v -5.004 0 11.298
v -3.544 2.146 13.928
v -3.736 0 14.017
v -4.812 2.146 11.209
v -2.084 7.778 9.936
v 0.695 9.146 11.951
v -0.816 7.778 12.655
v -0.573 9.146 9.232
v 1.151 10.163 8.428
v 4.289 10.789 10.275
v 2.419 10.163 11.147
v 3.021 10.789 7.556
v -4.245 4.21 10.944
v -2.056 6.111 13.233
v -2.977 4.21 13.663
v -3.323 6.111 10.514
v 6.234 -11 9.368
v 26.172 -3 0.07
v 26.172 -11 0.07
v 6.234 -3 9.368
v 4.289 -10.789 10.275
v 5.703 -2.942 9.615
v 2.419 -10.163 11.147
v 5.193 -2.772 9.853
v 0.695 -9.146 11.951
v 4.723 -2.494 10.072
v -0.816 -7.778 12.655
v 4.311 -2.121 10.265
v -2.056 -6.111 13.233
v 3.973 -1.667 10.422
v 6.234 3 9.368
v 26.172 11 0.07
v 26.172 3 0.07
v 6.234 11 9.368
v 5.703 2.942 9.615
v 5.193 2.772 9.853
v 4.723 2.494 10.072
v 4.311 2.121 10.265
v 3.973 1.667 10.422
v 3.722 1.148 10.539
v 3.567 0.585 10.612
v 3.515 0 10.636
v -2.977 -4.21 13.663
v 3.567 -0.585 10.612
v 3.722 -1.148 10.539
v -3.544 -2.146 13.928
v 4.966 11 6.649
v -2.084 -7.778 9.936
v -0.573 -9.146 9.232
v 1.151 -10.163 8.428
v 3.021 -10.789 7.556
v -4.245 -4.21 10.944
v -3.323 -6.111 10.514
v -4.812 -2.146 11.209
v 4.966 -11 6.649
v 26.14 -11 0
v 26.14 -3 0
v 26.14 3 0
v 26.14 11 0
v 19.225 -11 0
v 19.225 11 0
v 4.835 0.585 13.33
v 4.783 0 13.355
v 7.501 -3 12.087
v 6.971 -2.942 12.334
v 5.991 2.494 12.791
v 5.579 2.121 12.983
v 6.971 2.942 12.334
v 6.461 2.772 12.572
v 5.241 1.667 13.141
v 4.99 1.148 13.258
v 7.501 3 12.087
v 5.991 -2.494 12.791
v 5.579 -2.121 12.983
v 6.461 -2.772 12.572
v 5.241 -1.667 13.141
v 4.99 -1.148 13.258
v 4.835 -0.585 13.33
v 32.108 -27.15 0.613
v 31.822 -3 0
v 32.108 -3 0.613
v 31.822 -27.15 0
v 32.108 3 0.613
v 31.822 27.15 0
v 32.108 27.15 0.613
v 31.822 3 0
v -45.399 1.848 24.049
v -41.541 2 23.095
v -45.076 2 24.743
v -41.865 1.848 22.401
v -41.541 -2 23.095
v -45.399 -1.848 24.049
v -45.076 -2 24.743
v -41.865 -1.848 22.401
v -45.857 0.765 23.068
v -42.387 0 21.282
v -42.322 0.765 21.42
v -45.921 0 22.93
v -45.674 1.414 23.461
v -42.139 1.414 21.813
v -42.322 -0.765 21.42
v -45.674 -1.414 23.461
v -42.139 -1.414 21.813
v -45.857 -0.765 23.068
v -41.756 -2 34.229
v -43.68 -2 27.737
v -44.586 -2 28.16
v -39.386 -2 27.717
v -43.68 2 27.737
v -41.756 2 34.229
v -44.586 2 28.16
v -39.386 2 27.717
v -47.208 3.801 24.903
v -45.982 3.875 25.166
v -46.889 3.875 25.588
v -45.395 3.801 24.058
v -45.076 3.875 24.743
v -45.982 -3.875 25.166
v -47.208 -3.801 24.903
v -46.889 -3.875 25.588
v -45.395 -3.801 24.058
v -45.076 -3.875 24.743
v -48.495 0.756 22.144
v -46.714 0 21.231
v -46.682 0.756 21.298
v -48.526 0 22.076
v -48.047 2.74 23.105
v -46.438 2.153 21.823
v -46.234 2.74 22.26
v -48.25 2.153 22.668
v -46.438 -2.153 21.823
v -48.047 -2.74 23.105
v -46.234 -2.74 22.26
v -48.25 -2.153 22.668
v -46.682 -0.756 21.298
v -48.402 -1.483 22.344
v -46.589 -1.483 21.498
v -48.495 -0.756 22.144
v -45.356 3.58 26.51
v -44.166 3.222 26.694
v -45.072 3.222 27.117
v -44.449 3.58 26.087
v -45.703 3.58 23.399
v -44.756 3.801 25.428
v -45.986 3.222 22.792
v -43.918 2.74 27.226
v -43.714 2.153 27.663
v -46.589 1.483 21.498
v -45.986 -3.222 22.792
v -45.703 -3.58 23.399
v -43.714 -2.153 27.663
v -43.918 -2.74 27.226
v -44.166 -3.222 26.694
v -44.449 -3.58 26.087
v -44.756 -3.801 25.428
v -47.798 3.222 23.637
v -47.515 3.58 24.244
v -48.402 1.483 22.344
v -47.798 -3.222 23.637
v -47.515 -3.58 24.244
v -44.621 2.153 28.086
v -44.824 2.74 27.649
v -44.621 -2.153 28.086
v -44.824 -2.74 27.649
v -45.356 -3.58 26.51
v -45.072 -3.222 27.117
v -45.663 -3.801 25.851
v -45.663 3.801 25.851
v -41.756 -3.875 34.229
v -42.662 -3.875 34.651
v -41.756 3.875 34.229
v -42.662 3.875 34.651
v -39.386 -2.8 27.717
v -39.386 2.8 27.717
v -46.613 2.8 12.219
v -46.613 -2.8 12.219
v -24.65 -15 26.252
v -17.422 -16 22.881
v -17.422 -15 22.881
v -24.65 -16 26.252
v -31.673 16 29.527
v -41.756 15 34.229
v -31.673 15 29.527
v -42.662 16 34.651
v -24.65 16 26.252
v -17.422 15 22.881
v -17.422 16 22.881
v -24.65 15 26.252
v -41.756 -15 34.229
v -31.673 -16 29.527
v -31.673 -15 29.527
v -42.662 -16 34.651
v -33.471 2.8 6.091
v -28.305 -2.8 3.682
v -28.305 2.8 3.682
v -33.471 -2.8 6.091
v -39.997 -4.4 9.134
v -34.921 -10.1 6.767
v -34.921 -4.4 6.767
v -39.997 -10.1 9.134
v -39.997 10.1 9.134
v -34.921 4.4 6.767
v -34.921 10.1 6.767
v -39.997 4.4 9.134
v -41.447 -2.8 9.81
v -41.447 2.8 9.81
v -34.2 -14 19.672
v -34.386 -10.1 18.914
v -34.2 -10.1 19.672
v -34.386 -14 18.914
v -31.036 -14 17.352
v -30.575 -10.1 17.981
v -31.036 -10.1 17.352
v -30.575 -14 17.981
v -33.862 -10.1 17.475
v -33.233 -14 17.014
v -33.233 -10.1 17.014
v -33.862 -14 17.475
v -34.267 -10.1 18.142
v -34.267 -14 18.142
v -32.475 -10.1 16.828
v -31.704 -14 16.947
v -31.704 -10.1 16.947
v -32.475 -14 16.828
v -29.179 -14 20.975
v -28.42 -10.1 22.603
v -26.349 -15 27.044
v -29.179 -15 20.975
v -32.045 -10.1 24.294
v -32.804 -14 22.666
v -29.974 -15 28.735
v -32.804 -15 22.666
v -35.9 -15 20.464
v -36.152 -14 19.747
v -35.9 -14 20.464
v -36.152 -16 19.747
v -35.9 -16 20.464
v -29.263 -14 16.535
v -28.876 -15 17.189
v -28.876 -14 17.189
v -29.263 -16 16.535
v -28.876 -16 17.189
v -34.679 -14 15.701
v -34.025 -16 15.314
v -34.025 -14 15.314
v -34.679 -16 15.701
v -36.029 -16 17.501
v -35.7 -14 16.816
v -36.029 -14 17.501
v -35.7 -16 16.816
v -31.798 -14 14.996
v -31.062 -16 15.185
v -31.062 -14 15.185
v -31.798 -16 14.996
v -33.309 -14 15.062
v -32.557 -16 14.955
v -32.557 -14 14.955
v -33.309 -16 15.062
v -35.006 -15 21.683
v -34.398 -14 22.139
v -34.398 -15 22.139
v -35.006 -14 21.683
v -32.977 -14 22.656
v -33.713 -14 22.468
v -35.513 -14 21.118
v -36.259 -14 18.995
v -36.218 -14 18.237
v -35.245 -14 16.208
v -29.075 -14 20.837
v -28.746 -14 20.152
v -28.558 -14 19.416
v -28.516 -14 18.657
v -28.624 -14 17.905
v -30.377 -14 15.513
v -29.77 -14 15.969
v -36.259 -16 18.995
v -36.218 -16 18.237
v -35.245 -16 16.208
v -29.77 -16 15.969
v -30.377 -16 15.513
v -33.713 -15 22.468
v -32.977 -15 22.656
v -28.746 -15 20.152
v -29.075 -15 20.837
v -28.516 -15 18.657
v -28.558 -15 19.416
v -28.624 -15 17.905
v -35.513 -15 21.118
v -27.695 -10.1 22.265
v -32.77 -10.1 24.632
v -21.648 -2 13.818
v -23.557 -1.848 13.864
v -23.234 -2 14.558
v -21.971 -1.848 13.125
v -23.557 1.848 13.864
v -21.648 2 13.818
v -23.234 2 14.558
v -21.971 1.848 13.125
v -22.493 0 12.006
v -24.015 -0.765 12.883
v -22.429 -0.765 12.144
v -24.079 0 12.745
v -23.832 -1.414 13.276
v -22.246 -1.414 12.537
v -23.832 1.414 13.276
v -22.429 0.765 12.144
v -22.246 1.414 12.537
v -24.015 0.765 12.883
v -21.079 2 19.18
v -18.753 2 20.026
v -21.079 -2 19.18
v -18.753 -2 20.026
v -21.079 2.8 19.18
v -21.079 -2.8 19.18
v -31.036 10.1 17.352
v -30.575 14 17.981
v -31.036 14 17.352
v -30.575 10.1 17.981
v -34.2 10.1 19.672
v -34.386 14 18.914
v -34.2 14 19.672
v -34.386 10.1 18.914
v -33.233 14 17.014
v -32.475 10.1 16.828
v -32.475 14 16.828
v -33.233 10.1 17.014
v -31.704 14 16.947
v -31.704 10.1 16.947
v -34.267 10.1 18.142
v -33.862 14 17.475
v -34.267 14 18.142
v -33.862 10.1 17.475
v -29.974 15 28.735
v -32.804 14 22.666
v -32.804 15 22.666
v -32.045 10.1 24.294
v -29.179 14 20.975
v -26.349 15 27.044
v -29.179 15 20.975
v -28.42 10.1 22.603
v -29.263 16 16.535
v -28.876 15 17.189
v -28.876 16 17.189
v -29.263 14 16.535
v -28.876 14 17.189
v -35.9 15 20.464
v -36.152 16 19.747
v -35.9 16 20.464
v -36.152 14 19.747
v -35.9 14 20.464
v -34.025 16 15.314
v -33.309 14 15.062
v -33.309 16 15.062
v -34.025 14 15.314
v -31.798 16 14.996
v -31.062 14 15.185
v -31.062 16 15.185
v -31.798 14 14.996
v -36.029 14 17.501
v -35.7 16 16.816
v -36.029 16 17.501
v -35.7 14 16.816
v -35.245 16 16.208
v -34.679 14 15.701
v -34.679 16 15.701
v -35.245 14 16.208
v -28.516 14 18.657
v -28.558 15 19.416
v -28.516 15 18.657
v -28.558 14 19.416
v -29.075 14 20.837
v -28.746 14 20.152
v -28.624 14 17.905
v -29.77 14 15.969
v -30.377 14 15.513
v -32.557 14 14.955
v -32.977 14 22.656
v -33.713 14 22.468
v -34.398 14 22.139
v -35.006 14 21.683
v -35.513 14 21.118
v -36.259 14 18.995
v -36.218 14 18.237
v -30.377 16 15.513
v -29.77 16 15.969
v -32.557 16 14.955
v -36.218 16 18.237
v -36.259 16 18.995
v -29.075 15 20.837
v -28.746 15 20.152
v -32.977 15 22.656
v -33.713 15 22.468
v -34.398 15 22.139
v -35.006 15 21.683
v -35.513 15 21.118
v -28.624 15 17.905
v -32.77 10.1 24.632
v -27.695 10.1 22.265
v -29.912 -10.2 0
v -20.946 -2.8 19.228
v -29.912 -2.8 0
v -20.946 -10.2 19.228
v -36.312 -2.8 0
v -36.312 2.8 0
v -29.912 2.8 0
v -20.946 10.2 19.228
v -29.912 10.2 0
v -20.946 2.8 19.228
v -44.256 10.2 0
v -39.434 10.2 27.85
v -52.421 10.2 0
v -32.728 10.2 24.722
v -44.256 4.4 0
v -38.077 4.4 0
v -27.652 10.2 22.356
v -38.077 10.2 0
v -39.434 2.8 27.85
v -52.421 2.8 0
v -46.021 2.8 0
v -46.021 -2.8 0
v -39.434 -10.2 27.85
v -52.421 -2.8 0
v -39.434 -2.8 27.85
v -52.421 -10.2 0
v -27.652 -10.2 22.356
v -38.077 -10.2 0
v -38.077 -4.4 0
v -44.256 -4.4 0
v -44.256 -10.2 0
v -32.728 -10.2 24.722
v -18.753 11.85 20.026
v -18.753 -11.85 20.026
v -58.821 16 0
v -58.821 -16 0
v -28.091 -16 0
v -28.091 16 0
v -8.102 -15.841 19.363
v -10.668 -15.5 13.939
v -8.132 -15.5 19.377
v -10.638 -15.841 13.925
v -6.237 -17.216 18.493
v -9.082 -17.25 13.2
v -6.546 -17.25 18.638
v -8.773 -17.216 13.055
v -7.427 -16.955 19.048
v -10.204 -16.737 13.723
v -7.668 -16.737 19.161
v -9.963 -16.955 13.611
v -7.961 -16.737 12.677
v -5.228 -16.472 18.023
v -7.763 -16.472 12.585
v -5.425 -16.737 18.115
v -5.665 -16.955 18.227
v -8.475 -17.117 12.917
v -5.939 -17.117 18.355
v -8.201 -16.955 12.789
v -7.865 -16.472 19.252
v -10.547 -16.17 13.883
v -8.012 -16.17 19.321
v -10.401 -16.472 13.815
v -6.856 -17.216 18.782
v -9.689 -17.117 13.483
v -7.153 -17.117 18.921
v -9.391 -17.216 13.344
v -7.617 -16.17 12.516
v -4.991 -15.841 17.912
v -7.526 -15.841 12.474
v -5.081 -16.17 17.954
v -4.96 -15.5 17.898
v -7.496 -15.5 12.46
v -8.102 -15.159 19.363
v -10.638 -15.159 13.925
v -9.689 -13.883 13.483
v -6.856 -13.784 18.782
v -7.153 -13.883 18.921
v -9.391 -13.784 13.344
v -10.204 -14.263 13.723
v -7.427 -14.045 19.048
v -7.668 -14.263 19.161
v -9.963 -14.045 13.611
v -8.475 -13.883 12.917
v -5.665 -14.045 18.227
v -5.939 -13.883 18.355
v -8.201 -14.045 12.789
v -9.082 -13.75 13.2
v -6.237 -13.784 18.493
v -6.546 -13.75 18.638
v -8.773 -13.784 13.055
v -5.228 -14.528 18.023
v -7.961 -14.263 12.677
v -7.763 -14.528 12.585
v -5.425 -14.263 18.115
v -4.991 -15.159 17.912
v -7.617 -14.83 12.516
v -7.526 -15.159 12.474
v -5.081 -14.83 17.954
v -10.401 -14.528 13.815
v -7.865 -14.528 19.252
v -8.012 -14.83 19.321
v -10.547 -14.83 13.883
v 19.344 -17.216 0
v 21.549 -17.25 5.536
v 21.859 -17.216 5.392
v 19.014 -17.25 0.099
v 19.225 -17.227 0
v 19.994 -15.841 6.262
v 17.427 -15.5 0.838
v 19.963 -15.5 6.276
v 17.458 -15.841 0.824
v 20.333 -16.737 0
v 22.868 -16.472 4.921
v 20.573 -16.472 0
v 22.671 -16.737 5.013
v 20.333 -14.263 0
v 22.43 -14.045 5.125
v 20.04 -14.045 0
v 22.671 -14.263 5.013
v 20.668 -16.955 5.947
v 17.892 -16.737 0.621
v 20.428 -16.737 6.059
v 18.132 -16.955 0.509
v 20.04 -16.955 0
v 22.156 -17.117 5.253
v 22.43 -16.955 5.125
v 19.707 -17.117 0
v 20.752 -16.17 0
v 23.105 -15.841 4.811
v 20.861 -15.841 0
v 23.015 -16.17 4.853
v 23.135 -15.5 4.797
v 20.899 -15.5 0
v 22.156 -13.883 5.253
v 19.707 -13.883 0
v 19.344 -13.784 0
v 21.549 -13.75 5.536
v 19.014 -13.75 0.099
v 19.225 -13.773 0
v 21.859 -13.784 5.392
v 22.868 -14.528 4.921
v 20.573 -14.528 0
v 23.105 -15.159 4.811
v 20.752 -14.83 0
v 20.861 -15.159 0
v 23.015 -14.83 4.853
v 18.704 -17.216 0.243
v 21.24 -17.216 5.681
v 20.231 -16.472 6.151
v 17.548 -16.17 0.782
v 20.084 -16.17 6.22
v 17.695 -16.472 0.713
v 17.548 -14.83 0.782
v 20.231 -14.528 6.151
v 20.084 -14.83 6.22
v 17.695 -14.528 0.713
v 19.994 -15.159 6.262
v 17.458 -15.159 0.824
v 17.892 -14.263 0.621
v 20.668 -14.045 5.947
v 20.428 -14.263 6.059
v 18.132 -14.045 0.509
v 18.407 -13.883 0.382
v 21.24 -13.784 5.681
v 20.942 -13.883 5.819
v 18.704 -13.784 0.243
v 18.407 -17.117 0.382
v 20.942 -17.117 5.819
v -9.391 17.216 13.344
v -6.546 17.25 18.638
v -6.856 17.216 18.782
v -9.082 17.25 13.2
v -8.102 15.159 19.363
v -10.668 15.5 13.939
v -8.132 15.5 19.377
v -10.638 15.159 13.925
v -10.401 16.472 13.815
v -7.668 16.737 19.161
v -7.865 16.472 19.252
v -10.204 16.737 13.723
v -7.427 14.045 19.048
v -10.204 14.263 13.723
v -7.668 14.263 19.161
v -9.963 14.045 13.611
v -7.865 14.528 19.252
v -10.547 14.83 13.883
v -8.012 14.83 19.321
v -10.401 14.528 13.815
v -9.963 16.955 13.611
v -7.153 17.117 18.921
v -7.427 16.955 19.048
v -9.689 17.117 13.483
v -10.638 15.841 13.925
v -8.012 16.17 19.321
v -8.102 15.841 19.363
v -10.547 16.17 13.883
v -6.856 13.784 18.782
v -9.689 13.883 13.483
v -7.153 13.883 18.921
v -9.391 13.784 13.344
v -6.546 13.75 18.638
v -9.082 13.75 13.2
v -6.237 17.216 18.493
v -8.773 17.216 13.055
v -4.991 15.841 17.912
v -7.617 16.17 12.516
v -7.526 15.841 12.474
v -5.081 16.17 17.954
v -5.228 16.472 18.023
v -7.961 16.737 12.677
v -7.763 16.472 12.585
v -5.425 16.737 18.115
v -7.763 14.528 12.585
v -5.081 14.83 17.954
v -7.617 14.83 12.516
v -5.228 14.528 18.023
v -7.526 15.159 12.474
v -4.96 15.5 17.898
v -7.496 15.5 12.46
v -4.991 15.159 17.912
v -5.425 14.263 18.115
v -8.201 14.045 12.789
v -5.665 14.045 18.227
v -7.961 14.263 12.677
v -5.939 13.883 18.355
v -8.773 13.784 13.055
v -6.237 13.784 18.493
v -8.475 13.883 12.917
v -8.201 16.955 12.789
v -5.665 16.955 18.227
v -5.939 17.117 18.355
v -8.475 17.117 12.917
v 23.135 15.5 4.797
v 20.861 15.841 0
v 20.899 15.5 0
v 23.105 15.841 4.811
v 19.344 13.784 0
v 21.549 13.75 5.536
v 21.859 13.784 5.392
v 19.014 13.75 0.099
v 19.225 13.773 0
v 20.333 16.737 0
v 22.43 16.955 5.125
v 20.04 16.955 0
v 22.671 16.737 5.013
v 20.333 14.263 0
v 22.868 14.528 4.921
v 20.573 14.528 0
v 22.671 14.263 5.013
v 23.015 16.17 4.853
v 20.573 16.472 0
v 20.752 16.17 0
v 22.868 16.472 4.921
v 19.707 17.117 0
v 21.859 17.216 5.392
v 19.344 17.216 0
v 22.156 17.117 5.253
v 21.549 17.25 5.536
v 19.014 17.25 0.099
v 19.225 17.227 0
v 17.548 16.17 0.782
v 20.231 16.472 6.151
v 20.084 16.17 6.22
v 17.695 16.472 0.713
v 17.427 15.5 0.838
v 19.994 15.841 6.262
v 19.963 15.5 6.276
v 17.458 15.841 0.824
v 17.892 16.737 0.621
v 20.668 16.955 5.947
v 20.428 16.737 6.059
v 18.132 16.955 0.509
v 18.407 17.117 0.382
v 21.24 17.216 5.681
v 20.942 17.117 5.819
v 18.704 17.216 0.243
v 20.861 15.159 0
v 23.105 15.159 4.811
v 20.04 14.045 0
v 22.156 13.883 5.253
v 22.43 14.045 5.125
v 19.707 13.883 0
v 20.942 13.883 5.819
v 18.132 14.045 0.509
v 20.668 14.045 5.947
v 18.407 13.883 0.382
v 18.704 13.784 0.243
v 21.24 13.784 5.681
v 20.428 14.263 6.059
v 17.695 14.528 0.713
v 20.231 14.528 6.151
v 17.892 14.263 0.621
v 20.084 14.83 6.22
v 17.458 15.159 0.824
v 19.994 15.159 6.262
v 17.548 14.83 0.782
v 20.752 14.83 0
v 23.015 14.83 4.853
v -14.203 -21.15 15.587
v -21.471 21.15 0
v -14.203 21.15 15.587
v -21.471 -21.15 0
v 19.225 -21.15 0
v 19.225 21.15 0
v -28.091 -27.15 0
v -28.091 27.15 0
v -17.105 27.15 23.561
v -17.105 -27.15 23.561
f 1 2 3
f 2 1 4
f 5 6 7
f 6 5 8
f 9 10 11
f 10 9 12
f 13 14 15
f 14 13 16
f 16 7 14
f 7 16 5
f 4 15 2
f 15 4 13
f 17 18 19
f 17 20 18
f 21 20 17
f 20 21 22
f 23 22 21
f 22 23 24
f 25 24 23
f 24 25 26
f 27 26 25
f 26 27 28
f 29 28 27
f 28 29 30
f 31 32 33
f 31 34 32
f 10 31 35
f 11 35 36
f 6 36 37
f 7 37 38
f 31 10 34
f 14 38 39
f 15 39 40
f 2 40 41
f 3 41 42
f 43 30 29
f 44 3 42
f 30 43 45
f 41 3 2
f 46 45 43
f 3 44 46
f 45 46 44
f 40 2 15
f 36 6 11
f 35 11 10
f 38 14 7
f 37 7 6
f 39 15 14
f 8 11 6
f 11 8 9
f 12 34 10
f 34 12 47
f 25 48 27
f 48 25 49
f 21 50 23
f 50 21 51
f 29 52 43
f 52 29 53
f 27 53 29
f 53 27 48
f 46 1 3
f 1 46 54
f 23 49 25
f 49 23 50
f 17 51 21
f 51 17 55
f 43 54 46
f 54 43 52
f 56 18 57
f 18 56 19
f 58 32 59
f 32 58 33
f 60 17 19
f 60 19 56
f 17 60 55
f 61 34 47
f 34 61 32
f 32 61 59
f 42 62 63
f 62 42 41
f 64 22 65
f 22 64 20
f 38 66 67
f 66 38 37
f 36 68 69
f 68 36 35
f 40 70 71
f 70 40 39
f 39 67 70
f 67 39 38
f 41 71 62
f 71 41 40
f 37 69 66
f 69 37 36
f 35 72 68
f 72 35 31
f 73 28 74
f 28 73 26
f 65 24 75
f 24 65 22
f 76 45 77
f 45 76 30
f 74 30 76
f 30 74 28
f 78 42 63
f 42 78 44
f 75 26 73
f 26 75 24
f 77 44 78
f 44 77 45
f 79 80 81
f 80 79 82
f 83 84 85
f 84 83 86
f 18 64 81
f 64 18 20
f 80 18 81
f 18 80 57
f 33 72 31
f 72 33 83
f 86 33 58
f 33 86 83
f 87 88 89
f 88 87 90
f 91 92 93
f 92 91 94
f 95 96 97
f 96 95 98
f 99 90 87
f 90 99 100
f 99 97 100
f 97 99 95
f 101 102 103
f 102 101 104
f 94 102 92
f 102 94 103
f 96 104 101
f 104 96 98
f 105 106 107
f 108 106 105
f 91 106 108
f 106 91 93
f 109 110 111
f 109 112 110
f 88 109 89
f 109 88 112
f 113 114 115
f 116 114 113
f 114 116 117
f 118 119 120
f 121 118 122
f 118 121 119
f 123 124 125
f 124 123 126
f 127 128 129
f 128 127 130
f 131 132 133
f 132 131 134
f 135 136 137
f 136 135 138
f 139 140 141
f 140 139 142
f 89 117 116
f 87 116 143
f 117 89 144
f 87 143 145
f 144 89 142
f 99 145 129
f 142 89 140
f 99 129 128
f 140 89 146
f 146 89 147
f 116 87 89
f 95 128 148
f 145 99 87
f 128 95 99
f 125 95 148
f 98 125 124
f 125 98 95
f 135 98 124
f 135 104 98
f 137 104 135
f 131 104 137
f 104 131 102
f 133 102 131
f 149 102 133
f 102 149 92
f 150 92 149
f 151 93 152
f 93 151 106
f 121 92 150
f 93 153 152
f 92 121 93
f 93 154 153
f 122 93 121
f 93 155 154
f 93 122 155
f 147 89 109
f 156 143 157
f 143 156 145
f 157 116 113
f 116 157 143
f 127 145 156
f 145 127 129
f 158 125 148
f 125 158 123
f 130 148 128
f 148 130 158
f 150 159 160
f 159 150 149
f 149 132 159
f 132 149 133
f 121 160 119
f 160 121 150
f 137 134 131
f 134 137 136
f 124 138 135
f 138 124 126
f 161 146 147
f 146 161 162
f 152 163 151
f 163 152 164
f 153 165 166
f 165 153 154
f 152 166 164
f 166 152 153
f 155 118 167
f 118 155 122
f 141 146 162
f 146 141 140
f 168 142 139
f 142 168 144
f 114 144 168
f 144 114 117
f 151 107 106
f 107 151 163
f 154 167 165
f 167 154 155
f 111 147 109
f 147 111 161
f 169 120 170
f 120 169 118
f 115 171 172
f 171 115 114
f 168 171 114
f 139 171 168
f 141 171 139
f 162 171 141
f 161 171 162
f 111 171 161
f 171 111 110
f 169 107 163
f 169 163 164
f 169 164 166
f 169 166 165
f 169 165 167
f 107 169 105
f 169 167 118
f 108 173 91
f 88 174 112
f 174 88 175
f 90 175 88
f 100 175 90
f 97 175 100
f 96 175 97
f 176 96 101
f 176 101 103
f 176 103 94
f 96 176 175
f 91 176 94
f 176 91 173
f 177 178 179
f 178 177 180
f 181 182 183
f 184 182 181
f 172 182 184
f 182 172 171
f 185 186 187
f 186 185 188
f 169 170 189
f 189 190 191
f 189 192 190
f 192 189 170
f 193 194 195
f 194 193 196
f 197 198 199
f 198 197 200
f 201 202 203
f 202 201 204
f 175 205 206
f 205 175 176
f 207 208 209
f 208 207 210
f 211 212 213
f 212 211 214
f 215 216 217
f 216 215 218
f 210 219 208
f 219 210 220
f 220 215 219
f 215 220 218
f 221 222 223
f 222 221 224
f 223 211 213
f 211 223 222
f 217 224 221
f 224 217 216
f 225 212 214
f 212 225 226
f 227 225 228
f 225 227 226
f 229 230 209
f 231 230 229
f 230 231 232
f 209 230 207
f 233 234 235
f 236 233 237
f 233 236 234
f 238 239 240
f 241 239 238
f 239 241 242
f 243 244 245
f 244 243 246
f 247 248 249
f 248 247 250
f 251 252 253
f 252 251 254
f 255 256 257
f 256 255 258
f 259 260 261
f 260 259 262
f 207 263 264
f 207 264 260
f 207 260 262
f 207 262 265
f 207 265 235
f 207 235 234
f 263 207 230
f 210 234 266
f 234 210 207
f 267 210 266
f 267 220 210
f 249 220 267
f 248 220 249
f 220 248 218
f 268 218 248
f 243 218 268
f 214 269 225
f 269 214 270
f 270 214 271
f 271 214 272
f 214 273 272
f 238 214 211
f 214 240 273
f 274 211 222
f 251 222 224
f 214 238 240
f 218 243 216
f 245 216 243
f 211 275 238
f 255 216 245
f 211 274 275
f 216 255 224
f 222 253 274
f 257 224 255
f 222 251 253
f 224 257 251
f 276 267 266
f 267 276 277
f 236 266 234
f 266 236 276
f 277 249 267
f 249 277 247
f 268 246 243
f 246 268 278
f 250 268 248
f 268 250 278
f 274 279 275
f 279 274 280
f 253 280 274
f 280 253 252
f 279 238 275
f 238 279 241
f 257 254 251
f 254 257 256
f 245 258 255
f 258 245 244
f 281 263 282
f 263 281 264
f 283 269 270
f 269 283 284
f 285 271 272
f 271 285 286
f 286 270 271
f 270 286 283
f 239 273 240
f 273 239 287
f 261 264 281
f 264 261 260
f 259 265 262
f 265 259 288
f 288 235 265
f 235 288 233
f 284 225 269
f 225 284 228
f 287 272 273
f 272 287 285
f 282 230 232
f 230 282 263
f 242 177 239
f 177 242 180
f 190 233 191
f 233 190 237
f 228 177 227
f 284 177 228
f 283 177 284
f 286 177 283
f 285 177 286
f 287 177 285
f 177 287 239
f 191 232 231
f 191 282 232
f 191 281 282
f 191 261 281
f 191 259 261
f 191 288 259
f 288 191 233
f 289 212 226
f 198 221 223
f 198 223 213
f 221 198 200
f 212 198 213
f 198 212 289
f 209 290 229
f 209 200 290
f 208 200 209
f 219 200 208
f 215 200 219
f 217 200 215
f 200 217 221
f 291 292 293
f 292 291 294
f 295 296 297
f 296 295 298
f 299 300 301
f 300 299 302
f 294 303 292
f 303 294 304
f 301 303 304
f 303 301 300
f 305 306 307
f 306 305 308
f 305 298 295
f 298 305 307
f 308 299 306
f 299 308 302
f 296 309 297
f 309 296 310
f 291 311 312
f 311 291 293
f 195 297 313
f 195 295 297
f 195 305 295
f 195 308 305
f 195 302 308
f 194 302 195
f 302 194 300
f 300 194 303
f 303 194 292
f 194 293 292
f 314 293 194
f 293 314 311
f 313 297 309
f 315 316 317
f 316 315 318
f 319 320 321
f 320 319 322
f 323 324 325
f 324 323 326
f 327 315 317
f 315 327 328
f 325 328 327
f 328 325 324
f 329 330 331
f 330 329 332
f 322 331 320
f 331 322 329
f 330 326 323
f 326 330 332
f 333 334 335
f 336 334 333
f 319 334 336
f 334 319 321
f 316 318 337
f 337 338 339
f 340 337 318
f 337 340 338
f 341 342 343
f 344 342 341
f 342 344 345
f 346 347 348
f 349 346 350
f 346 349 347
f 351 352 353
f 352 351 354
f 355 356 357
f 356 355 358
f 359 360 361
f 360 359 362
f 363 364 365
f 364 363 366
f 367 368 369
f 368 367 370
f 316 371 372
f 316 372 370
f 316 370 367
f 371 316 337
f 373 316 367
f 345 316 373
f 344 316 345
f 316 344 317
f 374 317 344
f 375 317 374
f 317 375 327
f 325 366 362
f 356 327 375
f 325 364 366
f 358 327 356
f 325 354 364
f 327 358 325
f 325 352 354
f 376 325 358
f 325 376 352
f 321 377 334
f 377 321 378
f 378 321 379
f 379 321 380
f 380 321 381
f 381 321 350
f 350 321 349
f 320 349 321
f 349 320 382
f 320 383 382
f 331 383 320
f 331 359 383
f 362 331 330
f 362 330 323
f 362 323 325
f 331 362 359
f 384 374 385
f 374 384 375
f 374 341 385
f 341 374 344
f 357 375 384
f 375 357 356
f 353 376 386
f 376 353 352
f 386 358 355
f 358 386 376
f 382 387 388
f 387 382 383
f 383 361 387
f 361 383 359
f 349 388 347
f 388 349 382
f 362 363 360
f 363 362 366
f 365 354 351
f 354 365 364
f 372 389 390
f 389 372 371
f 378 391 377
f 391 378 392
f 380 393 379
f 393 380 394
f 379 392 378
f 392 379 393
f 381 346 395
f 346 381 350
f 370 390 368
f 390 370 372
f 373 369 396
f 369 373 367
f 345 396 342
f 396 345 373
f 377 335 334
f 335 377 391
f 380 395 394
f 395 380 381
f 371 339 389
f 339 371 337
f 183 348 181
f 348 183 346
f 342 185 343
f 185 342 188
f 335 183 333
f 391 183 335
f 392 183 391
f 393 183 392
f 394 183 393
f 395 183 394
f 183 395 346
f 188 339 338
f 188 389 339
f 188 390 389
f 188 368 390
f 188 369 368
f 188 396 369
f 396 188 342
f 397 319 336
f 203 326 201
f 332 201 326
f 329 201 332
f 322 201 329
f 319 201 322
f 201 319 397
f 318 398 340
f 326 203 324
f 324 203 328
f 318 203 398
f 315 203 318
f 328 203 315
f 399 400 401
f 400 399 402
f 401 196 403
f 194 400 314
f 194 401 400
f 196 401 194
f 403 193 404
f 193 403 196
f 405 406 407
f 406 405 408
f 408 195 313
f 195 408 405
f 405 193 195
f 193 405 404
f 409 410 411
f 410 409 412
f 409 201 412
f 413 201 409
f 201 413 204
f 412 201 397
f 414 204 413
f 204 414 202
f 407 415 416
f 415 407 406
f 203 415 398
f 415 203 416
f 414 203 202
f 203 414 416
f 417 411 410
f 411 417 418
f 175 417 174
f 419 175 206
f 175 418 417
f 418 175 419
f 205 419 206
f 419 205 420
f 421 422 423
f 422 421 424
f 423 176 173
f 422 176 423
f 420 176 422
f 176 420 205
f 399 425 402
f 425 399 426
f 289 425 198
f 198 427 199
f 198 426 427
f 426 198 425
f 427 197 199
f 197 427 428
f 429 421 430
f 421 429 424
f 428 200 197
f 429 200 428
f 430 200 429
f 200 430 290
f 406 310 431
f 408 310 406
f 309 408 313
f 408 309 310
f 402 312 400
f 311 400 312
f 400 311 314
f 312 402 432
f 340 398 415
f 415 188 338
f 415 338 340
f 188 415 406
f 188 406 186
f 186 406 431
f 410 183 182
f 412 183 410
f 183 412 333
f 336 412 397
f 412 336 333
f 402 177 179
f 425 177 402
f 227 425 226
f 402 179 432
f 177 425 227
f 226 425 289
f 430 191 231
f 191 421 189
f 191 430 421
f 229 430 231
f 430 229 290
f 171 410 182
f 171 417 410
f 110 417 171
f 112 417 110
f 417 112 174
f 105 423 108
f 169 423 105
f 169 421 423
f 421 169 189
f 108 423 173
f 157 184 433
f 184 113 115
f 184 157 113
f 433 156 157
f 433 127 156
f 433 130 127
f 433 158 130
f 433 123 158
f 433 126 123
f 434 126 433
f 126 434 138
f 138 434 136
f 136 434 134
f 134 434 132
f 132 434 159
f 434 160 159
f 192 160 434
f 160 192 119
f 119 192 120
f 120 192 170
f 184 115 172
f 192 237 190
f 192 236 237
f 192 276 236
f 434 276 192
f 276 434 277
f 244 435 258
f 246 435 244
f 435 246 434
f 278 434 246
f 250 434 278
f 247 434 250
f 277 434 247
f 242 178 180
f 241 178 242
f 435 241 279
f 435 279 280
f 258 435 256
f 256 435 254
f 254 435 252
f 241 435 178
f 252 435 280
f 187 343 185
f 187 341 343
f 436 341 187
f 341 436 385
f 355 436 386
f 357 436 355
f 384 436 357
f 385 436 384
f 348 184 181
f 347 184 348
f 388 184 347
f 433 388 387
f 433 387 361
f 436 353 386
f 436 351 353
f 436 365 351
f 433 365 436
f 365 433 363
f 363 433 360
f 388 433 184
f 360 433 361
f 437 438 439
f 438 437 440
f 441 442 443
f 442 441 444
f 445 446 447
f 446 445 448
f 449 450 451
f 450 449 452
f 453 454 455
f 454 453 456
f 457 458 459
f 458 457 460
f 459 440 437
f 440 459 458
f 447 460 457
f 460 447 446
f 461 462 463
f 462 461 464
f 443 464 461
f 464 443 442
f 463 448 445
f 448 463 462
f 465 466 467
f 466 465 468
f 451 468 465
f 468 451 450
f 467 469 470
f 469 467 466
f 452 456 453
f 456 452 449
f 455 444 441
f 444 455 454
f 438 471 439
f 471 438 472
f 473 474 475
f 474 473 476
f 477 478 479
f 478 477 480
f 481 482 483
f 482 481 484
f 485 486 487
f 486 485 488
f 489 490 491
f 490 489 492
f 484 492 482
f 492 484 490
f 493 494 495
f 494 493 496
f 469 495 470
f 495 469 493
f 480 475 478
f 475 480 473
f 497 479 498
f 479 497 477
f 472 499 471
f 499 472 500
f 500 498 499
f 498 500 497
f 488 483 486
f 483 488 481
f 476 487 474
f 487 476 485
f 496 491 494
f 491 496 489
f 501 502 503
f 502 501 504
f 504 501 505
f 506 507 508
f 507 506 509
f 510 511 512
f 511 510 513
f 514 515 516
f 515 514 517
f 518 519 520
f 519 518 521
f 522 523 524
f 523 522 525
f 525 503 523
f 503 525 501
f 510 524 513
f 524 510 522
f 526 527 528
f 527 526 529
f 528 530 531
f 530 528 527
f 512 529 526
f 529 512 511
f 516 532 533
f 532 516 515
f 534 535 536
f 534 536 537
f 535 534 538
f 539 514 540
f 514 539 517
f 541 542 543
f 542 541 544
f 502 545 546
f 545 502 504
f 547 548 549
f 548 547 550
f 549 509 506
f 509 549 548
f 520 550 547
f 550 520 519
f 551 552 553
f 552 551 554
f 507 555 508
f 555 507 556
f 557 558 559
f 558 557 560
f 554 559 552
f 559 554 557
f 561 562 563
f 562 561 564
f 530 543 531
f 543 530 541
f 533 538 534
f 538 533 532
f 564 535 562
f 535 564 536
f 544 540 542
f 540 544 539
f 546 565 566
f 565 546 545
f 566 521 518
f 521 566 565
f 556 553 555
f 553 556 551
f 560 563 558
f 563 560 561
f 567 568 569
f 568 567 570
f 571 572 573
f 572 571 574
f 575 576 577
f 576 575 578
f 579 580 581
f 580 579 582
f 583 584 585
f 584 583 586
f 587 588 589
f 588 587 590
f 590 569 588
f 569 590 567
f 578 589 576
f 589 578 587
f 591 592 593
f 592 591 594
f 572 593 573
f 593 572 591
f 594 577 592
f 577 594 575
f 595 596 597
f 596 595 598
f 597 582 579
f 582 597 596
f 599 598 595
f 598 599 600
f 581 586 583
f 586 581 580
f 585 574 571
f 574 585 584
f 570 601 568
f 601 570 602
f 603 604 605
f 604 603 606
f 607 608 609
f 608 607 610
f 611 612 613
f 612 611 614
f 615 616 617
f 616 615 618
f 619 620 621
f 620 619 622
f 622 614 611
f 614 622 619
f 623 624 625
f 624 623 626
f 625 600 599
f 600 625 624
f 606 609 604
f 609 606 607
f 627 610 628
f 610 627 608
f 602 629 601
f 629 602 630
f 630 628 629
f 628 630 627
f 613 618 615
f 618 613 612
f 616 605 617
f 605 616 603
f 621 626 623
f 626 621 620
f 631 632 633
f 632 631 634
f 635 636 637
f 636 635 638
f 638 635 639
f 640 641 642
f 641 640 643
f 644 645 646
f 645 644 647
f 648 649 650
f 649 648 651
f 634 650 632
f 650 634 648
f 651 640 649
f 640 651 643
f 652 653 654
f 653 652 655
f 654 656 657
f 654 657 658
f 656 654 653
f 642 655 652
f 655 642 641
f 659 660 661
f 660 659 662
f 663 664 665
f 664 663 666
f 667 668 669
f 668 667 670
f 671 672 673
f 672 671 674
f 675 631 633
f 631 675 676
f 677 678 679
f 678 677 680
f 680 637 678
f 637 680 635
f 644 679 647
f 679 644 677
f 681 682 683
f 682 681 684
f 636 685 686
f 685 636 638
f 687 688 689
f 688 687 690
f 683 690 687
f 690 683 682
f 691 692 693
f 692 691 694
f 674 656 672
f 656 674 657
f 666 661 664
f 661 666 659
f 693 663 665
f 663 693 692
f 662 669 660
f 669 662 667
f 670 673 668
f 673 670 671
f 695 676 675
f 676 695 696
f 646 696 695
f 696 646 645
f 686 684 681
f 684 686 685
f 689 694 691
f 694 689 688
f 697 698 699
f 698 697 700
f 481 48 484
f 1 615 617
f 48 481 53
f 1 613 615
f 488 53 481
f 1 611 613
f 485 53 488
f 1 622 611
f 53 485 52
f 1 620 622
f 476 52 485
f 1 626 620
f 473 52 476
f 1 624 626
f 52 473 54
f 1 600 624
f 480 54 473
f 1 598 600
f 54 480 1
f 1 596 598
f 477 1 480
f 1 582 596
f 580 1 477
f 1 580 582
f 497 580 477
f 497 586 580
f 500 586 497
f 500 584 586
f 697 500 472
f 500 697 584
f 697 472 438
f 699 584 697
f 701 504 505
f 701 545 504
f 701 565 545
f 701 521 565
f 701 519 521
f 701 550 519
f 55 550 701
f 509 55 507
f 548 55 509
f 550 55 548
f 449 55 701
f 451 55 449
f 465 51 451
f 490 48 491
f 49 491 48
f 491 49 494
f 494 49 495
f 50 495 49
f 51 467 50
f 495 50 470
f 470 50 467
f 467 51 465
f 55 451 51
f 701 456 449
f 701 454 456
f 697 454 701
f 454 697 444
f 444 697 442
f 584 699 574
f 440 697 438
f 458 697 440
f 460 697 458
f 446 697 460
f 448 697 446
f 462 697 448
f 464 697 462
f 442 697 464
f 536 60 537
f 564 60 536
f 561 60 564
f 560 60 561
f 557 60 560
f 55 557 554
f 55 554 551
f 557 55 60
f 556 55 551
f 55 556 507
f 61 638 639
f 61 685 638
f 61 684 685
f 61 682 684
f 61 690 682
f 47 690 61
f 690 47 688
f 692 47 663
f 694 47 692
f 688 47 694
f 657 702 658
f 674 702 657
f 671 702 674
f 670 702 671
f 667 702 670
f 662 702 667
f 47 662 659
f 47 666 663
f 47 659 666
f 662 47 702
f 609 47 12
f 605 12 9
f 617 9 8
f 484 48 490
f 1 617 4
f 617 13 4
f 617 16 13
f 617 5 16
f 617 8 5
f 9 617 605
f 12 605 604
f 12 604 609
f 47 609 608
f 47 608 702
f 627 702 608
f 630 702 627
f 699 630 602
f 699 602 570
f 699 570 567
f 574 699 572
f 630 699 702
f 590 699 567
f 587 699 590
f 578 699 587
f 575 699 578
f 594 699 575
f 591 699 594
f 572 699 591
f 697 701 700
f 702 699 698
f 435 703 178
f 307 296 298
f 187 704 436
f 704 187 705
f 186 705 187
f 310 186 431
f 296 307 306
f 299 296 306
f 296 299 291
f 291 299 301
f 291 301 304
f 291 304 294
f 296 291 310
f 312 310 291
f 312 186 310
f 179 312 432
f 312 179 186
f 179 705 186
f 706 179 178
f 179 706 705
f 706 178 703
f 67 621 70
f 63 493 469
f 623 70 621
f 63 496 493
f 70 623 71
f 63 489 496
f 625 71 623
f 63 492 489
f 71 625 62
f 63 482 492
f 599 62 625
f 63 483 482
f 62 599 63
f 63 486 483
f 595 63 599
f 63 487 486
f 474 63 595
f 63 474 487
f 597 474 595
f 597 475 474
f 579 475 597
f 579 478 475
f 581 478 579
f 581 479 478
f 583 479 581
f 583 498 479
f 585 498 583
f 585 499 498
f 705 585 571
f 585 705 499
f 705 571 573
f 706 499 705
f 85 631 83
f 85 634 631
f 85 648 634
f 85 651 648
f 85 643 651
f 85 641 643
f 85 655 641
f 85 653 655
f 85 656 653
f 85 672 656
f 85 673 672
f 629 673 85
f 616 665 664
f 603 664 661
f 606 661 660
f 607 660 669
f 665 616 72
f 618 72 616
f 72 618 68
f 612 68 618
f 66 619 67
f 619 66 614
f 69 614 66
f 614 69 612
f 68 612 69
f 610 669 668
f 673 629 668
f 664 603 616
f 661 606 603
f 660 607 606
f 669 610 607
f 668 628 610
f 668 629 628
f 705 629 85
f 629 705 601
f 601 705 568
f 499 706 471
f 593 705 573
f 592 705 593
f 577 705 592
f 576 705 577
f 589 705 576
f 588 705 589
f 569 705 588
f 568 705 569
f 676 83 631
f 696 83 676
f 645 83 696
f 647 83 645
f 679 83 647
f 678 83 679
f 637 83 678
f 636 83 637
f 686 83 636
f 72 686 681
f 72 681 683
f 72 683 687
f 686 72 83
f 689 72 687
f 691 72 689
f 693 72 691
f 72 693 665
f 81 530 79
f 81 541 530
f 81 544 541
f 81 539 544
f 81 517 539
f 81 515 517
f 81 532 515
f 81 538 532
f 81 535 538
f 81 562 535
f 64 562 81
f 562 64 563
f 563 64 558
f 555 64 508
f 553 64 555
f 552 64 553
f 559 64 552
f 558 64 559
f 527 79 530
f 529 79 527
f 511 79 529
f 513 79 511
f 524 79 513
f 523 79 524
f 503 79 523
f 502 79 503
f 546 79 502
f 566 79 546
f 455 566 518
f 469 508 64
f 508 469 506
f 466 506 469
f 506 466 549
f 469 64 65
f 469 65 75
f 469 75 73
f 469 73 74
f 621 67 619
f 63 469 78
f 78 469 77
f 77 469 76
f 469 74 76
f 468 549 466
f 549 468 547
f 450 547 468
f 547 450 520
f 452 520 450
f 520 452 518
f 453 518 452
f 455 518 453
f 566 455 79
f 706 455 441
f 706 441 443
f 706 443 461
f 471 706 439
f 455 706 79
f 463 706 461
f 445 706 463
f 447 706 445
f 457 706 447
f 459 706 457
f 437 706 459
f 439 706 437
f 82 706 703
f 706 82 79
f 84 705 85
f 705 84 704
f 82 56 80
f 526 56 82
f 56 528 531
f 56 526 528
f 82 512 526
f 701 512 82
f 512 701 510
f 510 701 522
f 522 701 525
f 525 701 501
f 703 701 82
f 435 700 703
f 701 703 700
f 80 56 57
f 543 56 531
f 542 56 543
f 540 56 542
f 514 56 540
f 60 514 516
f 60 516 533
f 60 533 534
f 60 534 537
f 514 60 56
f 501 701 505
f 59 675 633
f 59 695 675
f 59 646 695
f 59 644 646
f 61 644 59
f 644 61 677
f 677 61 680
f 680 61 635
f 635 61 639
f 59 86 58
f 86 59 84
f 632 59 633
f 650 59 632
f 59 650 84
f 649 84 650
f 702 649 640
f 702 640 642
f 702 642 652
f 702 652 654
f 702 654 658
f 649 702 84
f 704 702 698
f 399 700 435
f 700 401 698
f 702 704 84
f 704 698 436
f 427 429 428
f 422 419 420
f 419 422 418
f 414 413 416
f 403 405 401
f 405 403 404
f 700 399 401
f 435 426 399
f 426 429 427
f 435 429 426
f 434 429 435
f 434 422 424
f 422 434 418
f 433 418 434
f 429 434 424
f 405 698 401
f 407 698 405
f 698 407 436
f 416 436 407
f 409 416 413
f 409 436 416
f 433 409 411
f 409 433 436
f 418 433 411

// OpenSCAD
// Generated by SolidPython 1.1.3 on 2024-01-09 19:43:56


difference() {
	translate(v = [0, 0, -4]) {
		rotate(a = 25, v = [0, 1, 0]) {
			union() {
				difference() {
					cube(center = true, size = [54.3000000000, 54.3000000000, 35.5000000000]);
					union() {
						cube(center = true, size = [42.3000000000, 42.3000000000, 23.5000000000]);
						union() {
							translate(v = [15.5000000000, 15.5000000000, 11.7500000000]) {
								cylinder($fn = 32, center = true, h = 20, r = 1.7500000000);
							}
							rotate(a = 90, v = [0, 0, 1]) {
								translate(v = [15.5000000000, 15.5000000000, 11.7500000000]) {
									cylinder($fn = 32, center = true, h = 20, r = 1.7500000000);
								}
							}
							rotate(a = 180, v = [0, 0, 1]) {
								union() {
									translate(v = [15.5000000000, 15.5000000000, 11.7500000000]) {
										cylinder($fn = 32, center = true, h = 20, r = 1.7500000000);
									}
									rotate(a = 90, v = [0, 0, 1]) {
										translate(v = [15.5000000000, 15.5000000000, 11.7500000000]) {
											cylinder($fn = 32, center = true, h = 20, r = 1.7500000000);
										}
									}
								}
							}
							rotate(a = 270, v = [0, 0, 1]) {
								union() {
									translate(v = [15.5000000000, 15.5000000000, 11.7500000000]) {
										cylinder($fn = 32, center = true, h = 20, r = 1.7500000000);
									}
									rotate(a = 90, v = [0, 0, 1]) {
										translate(v = [15.5000000000, 15.5000000000, 11.7500000000]) {
											cylinder($fn = 32, center = true, h = 20, r = 1.7500000000);
										}
									}
									rotate(a = 180, v = [0, 0, 1]) {
										union() {
											translate(v = [15.5000000000, 15.5000000000, 11.7500000000]) {
												cylinder($fn = 32, center = true, h = 20, r = 1.7500000000);
											}
											rotate(a = 90, v = [0, 0, 1]) {
												translate(v = [15.5000000000, 15.5000000000, 11.7500000000]) {
													cylinder($fn = 32, center = true, h = 20, r = 1.7500000000);
												}
											}
										}
									}
								}
							}
						}
						translate(v = [0, 0, 11.7500000000]) {
							union() {
								cylinder($fn = 32, center = true, h = 6, r = 11.0000000000);
								translate(v = [11.0000000000, 0, 0]) {
									cube(center = true, size = [22, 22, 6]);
								}
							}
						}
						translate(v = [0, 0, 23.5000000000]) {
							union() {
								cylinder($fn = 32, center = true, h = 20, r = 3);
								translate(v = [13.5750000000, 0, -4]) {
									cube(center = true, size = [27.1500000000, 6, 20]);
								}
							}
						}
					}
				}
				translate(v = [-39, 0, -18]) {
					rotate(a = 90, v = [0, 1, 0]) {
						difference() {
							union() {
								union();
								translate(v = [-35, 0, 0]) {
									rotate(a = [0, 90.0, 0.0]) {
										translate(v = [0, 0, 35.0]) {
											cube(center = true, size = [32.0000000000, 32.0000000000, 70.0]);
										}
									}
								}
								union();
							}
							union() {
								union();
								translate(v = [-35, 0, 0]) {
									rotate(a = [0, 90.0, 0.0]) {
										translate(v = [0, 0, 10]) {
											rotate(a = -90, v = [0, -1, 0]) {
												rotate(a = 90, v = [0, 0, 1]) {
													union() {
														union();
														translate(v = [0, -10, 0]) {
															rotate(a = -90, v = [1, 0, 0]) {
																polyhedron(convexity = 10, faces = [[0, 1, 4], [1, 5, 4], [1, 2, 5], [2, 6, 5], [2, 3, 6], [3, 7, 6], [3, 0, 7], [0, 4, 7], [3, 2, 1, 0], [4, 5, 6, 7]], points = [[-15.0000000000, 15.0000000000, 0.0000000000], [15.0000000000, 15.0000000000, 0.0000000000], [15.0000000000, -15.0000000000, 0.0000000000], [-15.0000000000, -15.0000000000, 0.0000000000], [0.0000000000, 0.0000000000, 15.0000000000], [0.0000000000, 0.0000000000, 15.0000000000], [0.0000000000, 0.0000000000, 15.0000000000], [0.0000000000, 0.0000000000, 15.0000000000]]);
															}
														}
														translate(v = [0, 51.0, 0]) {
															rotate(a = 180, v = [1, 0, 0]) {
																translate(v = [0, -10, 0]) {
																	rotate(a = -90, v = [1, 0, 0]) {
																		polyhedron(convexity = 10, faces = [[0, 1, 4], [1, 5, 4], [1, 2, 5], [2, 6, 5], [2, 3, 6], [3, 7, 6], [3, 0, 7], [0, 4, 7], [3, 2, 1, 0], [4, 5, 6, 7]], points = [[-15.0000000000, 15.0000000000, 0.0000000000], [15.0000000000, 15.0000000000, 0.0000000000], [15.0000000000, -15.0000000000, 0.0000000000], [-15.0000000000, -15.0000000000, 0.0000000000], [0.0000000000, 0.0000000000, 15.0000000000], [0.0000000000, 0.0000000000, 15.0000000000], [0.0000000000, 0.0000000000, 15.0000000000], [0.0000000000, 0.0000000000, 15.0000000000]]);
																	}
																}
															}
														}
														translate(v = [0, -10, 0]) {
															rotate(a = -90, v = [1, 0, 0]) {
																union() {
																	polyhedron(convexity = 10, faces = [[0, 1, 5], [1, 6, 5], [1, 2, 6], [2, 7, 6], [2, 3, 7], [3, 8, 7], [3, 4, 8], [4, 9, 8], [4, 0, 9], [0, 5, 9], [4, 3, 2, 1, 0], [5, 6, 7, 8, 9]], points = [[-10.2, 10.2, 0.0], [-10.2, 2.8, 0.0], [-4.3999999999999995, 2.8, 0.0], [-4.3999999999999995, 0.0, 0.0], [0.0, 0.0, 0.0], [-10.2, 10.2, 70.0], [-10.2, 2.8, 70.0], [-4.3999999999999995, 2.8, 70.0], [-4.3999999999999995, 0.0, 70.0], [0.0, 0.0, 70.0]]);
																	mirror(v = [0, 1]) {
																		polyhedron(convexity = 10, faces = [[0, 1, 5], [1, 6, 5], [1, 2, 6], [2, 7, 6], [2, 3, 7], [3, 8, 7], [3, 4, 8], [4, 9, 8], [4, 0, 9], [0, 5, 9], [4, 3, 2, 1, 0], [5, 6, 7, 8, 9]], points = [[-10.2, 10.2, 0.0], [-10.2, 2.8, 0.0], [-4.3999999999999995, 2.8, 0.0], [-4.3999999999999995, 0.0, 0.0], [0.0, 0.0, 0.0], [-10.2, 10.2, 70.0], [-10.2, 2.8, 70.0], [-4.3999999999999995, 2.8, 70.0], [-4.3999999999999995, 0.0, 70.0], [0.0, 0.0, 70.0]]);
																	}
																	mirror(v = [1, 1]) {
																		union() {
																			polyhedron(convexity = 10, faces = [[0, 1, 5], [1, 6, 5], [1, 2, 6], [2, 7, 6], [2, 3, 7], [3, 8, 7], [3, 4, 8], [4, 9, 8], [4, 0, 9], [0, 5, 9], [4, 3, 2, 1, 0], [5, 6, 7, 8, 9]], points = [[-10.2, 10.2, 0.0], [-10.2, 2.8, 0.0], [-4.3999999999999995, 2.8, 0.0], [-4.3999999999999995, 0.0, 0.0], [0.0, 0.0, 0.0], [-10.2, 10.2, 70.0], [-10.2, 2.8, 70.0], [-4.3999999999999995, 2.8, 70.0], [-4.3999999999999995, 0.0, 70.0], [0.0, 0.0, 70.0]]);
																			mirror(v = [0, 1]) {
																				polyhedron(convexity = 10, faces = [[0, 1, 5], [1, 6, 5], [1, 2, 6], [2, 7, 6], [2, 3, 7], [3, 8, 7], [3, 4, 8], [4, 9, 8], [4, 0, 9], [0, 5, 9], [4, 3, 2, 1, 0], [5, 6, 7, 8, 9]], points = [[-10.2, 10.2, 0.0], [-10.2, 2.8, 0.0], [-4.3999999999999995, 2.8, 0.0], [-4.3999999999999995, 0.0, 0.0], [0.0, 0.0, 0.0], [-10.2, 10.2, 70.0], [-10.2, 2.8, 70.0], [-4.3999999999999995, 2.8, 70.0], [-4.3999999999999995, 0.0, 70.0], [0.0, 0.0, 70.0]]);
																			}
																		}
																	}
																	mirror(v = [1, -1]) {
																		union() {
																			polyhedron(convexity = 10, faces = [[0, 1, 5], [1, 6, 5], [1, 2, 6], [2, 7, 6], [2, 3, 7], [3, 8, 7], [3, 4, 8], [4, 9, 8], [4, 0, 9], [0, 5, 9], [4, 3, 2, 1, 0], [5, 6, 7, 8, 9]], points = [[-10.2, 10.2, 0.0], [-10.2, 2.8, 0.0], [-4.3999999999999995, 2.8, 0.0], [-4.3999999999999995, 0.0, 0.0], [0.0, 0.0, 0.0], [-10.2, 10.2, 70.0], [-10.2, 2.8, 70.0], [-4.3999999999999995, 2.8, 70.0], [-4.3999999999999995, 0.0, 70.0], [0.0, 0.0, 70.0]]);
																			mirror(v = [0, 1]) {
																				polyhedron(convexity = 10, faces = [[0, 1, 5], [1, 6, 5], [1, 2, 6], [2, 7, 6], [2, 3, 7], [3, 8, 7], [3, 4, 8], [4, 9, 8], [4, 0, 9], [0, 5, 9], [4, 3, 2, 1, 0], [5, 6, 7, 8, 9]], points = [[-10.2, 10.2, 0.0], [-10.2, 2.8, 0.0], [-4.3999999999999995, 2.8, 0.0], [-4.3999999999999995, 0.0, 0.0], [0.0, 0.0, 0.0], [-10.2, 10.2, 70.0], [-10.2, 2.8, 70.0], [-4.3999999999999995, 2.8, 70.0], [-4.3999999999999995, 0.0, 70.0], [0.0, 0.0, 70.0]]);
																			}
																			mirror(v = [1, 1]) {
																				union() {
																					polyhedron(convexity = 10, faces = [[0, 1, 5], [1, 6, 5], [1, 2, 6], [2, 7, 6], [2, 3, 7], [3, 8, 7], [3, 4, 8], [4, 9, 8], [4, 0, 9], [0, 5, 9], [4, 3, 2, 1, 0], [5, 6, 7, 8, 9]], points = [[-10.2, 10.2, 0.0], [-10.2, 2.8, 0.0], [-4.3999999999999995, 2.8, 0.0], [-4.3999999999999995, 0.0, 0.0], [0.0, 0.0, 0.0], [-10.2, 10.2, 70.0], [-10.2, 2.8, 70.0], [-4.3999999999999995, 2.8, 70.0], [-4.3999999999999995, 0.0, 70.0], [0.0, 0.0, 70.0]]);
																					mirror(v = [0, 1]) {
																						polyhedron(convexity = 10, faces = [[0, 1, 5], [1, 6, 5], [1, 2, 6], [2, 7, 6], [2, 3, 7], [3, 8, 7], [3, 4, 8], [4, 9, 8], [4, 0, 9], [0, 5, 9], [4, 3, 2, 1, 0], [5, 6, 7, 8, 9]], points = [[-10.2, 10.2, 0.0], [-10.2, 2.8, 0.0], [-4.3999999999999995, 2.8, 0.0], [-4.3999999999999995, 0.0, 0.0], [0.0, 0.0, 0.0], [-10.2, 10.2, 70.0], [-10.2, 2.8, 70.0], [-4.3999999999999995, 2.8, 70.0], [-4.3999999999999995, 0.0, 70.0], [0.0, 0.0, 70.0]]);
																					}
																				}
																			}
																		}
																	}
																}
															}
														}
														union() {
															union();
															rotate(a = 180, v = [0, 1, 0]) {
																union() {
																	translate(v = [0, 0, 14]) {
																		cylinder($fn = 32, h = 4, r = 3.8750000000);
																	}
																	translate(v = [-3.8750000000, -12, 15]) {
																		cube(size = [7.7500000000, 12, 4]);
																	}
																	union() {
																		cylinder($fn = 16, h = 19, r = 2.0000000000);
																		translate(v = [-2.0000000000, -12, 0]) {
																			cube(size = [4, 12, 19]);
																		}
																	}
																	rotate(a = -90, v = [0, 1, 0]) {
																		polyhedron(convexity = 10, faces = [[0, 1, 3], [1, 4, 3], [1, 2, 4], [2, 5, 4], [2, 0, 5], [0, 3, 5], [2, 1, 0], [3, 4, 5]], points = [[0.0000000000, -10.0000000000, 0.0000000000], [10.1000000000, -10.0000000000, 10.1000000000], [10.1000000000, -10.0000000000, -10.1000000000], [0.0000000000, 12.0000000000, 0.0000000000], [10.1000000000, 12.0000000000, 10.1000000000], [10.1000000000, 12.0000000000, -10.1000000000]]);
																	}
																}
															}
															rotate(a = 90, v = [0, 1, 0]) {
																union() {
																	translate(v = [0, 0, 14]) {
																		cylinder($fn = 32, h = 4, r = 3.8750000000);
																	}
																	translate(v = [-3.8750000000, -12, 15]) {
																		cube(size = [7.7500000000, 12, 4]);
																	}
																	union() {
																		cylinder($fn = 16, h = 19, r = 2.0000000000);
																		translate(v = [-2.0000000000, -12, 0]) {
																			cube(size = [4, 12, 19]);
																		}
																	}
																	rotate(a = -90, v = [0, 1, 0]) {
																		polyhedron(convexity = 10, faces = [[0, 1, 3], [1, 4, 3], [1, 2, 4], [2, 5, 4], [2, 0, 5], [0, 3, 5], [2, 1, 0], [3, 4, 5]], points = [[0.0000000000, -10.0000000000, 0.0000000000], [10.1000000000, -10.0000000000, 10.1000000000], [10.1000000000, -10.0000000000, -10.1000000000], [0.0000000000, 12.0000000000, 0.0000000000], [10.1000000000, 12.0000000000, 10.1000000000], [10.1000000000, 12.0000000000, -10.1000000000]]);
																	}
																}
															}
															union() {
																translate(v = [0, 0, 14]) {
																	cylinder($fn = 32, h = 4, r = 3.8750000000);
																}
																translate(v = [-3.8750000000, -12, 15]) {
																	cube(size = [7.7500000000, 12, 4]);
																}
																union() {
																	cylinder($fn = 16, h = 19, r = 2.0000000000);
																	translate(v = [-2.0000000000, -12, 0]) {
																		cube(size = [4, 12, 19]);
																	}
																}
																rotate(a = -90, v = [0, 1, 0]) {
																	polyhedron(convexity = 10, faces = [[0, 1, 3], [1, 4, 3], [1, 2, 4], [2, 5, 4], [2, 0, 5], [0, 3, 5], [2, 1, 0], [3, 4, 5]], points = [[0.0000000000, -10.0000000000, 0.0000000000], [10.1000000000, -10.0000000000, 10.1000000000], [10.1000000000, -10.0000000000, -10.1000000000], [0.0000000000, 12.0000000000, 0.0000000000], [10.1000000000, 12.0000000000, 10.1000000000], [10.1000000000, 12.0000000000, -10.1000000000]]);
																}
															}
															rotate(a = 270, v = [0, 1, 0]) {
																union() {
																	translate(v = [0, 0, 14]) {
																		cylinder($fn = 32, h = 4, r = 3.8750000000);
																	}
																	translate(v = [-3.8750000000, -12, 15]) {
																		cube(size = [7.7500000000, 12, 4]);
																	}
																	union() {
																		cylinder($fn = 16, h = 19, r = 2.0000000000);
																		translate(v = [-2.0000000000, -12, 0]) {
																			cube(size = [4, 12, 19]);
																		}
																	}
																	rotate(a = -90, v = [0, 1, 0]) {
																		polyhedron(convexity = 10, faces = [[0, 1, 3], [1, 4, 3], [1, 2, 4], [2, 5, 4], [2, 0, 5], [0, 3, 5], [2, 1, 0], [3, 4, 5]], points = [[0.0000000000, -10.0000000000, 0.0000000000], [10.1000000000, -10.0000000000, 10.1000000000], [10.1000000000, -10.0000000000, -10.1000000000], [0.0000000000, 12.0000000000, 0.0000000000], [10.1000000000, 12.0000000000, 10.1000000000], [10.1000000000, 12.0000000000, -10.1000000000]]);
																	}
																}
															}
															translate(v = [0, 51.0, 0]) {
																rotate(a = 180, v = [1, 0, 0]) {
																	rotate(a = 180, v = [0, 1, 0]) {
																		union() {
																			translate(v = [0, 0, 14]) {
																				cylinder($fn = 32, h = 4, r = 3.8750000000);
																			}
																			translate(v = [-3.8750000000, -12, 15]) {
																				cube(size = [7.7500000000, 12, 4]);
																			}
																			union() {
																				cylinder($fn = 16, h = 19, r = 2.0000000000);
																				translate(v = [-2.0000000000, -12, 0]) {
																					cube(size = [4, 12, 19]);
																				}
																			}
																			rotate(a = -90, v = [0, 1, 0]) {
																				polyhedron(convexity = 10, faces = [[0, 1, 3], [1, 4, 3], [1, 2, 4], [2, 5, 4], [2, 0, 5], [0, 3, 5], [2, 1, 0], [3, 4, 5]], points = [[0.0000000000, -10.0000000000, 0.0000000000], [10.1000000000, -10.0000000000, 10.1000000000], [10.1000000000, -10.0000000000, -10.1000000000], [0.0000000000, 12.0000000000, 0.0000000000], [10.1000000000, 12.0000000000, 10.1000000000], [10.1000000000, 12.0000000000, -10.1000000000]]);
																			}
																		}
																	}
																}
															}
															translate(v = [0, 51.0, 0]) {
																rotate(a = 180, v = [1, 0, 0]) {
																	rotate(a = 90, v = [0, 1, 0]) {
																		union() {
																			translate(v = [0, 0, 14]) {
																				cylinder($fn = 32, h = 4, r = 3.8750000000);
																			}
																			translate(v = [-3.8750000000, -12, 15]) {
																				cube(size = [7.7500000000, 12, 4]);
																			}
																			union() {
																				cylinder($fn = 16, h = 19, r = 2.0000000000);
																				translate(v = [-2.0000000000, -12, 0]) {
																					cube(size = [4, 12, 19]);
																				}
																			}
																			rotate(a = -90, v = [0, 1, 0]) {
																				polyhedron(convexity = 10, faces = [[0, 1, 3], [1, 4, 3], [1, 2, 4], [2, 5, 4], [2, 0, 5], [0, 3, 5], [2, 1, 0], [3, 4, 5]], points = [[0.0000000000, -10.0000000000, 0.0000000000], [10.1000000000, -10.0000000000, 10.1000000000], [10.1000000000, -10.0000000000, -10.1000000000], [0.0000000000, 12.0000000000, 0.0000000000], [10.1000000000, 12.0000000000, 10.1000000000], [10.1000000000, 12.0000000000, -10.1000000000]]);
																			}
																		}
																	}
																}
															}
															translate(v = [0, 51.0, 0]) {
																rotate(a = 180, v = [1, 0, 0]) {
																	union() {
																		translate(v = [0, 0, 14]) {
																			cylinder($fn = 32, h = 4, r = 3.8750000000);
																		}
																		translate(v = [-3.8750000000, -12, 15]) {
																			cube(size = [7.7500000000, 12, 4]);
																		}
																		union() {
																			cylinder($fn = 16, h = 19, r = 2.0000000000);
																			translate(v = [-2.0000000000, -12, 0]) {
																				cube(size = [4, 12, 19]);
																			}
																		}
																		rotate(a = -90, v = [0, 1, 0]) {
																			polyhedron(convexity = 10, faces = [[0, 1, 3], [1, 4, 3], [1, 2, 4], [2, 5, 4], [2, 0, 5], [0, 3, 5], [2, 1, 0], [3, 4, 5]], points = [[0.0000000000, -10.0000000000, 0.0000000000], [10.1000000000, -10.0000000000, 10.1000000000], [10.1000000000, -10.0000000000, -10.1000000000], [0.0000000000, 12.0000000000, 0.0000000000], [10.1000000000, 12.0000000000, 10.1000000000], [10.1000000000, 12.0000000000, -10.1000000000]]);
																		}
																	}
																}
															}
															translate(v = [0, 51.0, 0]) {
																rotate(a = 180, v = [1, 0, 0]) {
																	rotate(a = 270, v = [0, 1, 0]) {
																		union() {
																			translate(v = [0, 0, 14]) {
																				cylinder($fn = 32, h = 4, r = 3.8750000000);
																			}
																			translate(v = [-3.8750000000, -12, 15]) {
																				cube(size = [7.7500000000, 12, 4]);
																			}
																			union() {
																				cylinder($fn = 16, h = 19, r = 2.0000000000);
																				translate(v = [-2.0000000000, -12, 0]) {
																					cube(size = [4, 12, 19]);
																				}
																			}
																			rotate(a = -90, v = [0, 1, 0]) {
																				polyhedron(convexity = 10, faces = [[0, 1, 3], [1, 4, 3], [1, 2, 4], [2, 5, 4], [2, 0, 5], [0, 3, 5], [2, 1, 0], [3, 4, 5]], points = [[0.0000000000, -10.0000000000, 0.0000000000], [10.1000000000, -10.0000000000, 10.1000000000], [10.1000000000, -10.0000000000, -10.1000000000], [0.0000000000, 12.0000000000, 0.0000000000], [10.1000000000, 12.0000000000, 10.1000000000], [10.1000000000, 12.0000000000, -10.1000000000]]);
																			}
																		}
																	}
																}
															}
														}
													}
												}
											}
										}
									}
								}
							}
						}
					}
				}
			}
		}
	}
	translate(v = [0, 0, -150]) {
		cube(center = true, size = [300, 300, 300]);
	}
}
/***********************************************
*********      SolidPython code:      **********
************************************************
 
#! /usr/bin/env python3
import sys
from math import cos, radians, sin, pi, tau
from pathlib import Path

from solid import *
from solid.utils import *

from typing import Set, Sequence, List, Callable, Optional, Union, Iterable, Tuple

import numpy as np

import extrusion_fittings as ef

class mount():
	def __init__(self,stepper_size = 42.3,screw_dist = 31,screw_dia = 3.5,motor_thickness = 23.5, bump_dia = 22, mount_thick = 6):
		self.stepper_size = stepper_size
		self.screw_dist = screw_dist
		self.screw_dia = screw_dia
		self.motor_thickness = motor_thickness
		self.bump_dia = bump_dia
		self.total_size = stepper_size + mount_thick*2
		self.total_thick = motor_thickness + mount_thick*2

	def screws(self) -> OpenSCADObject:
		screw = cylinder(r=self.screw_dia/2, h=20, segments = 32, center=True)
		screw = translate([self.screw_dist/2,self.screw_dist/2,self.motor_thickness/2])(screw)
		screw += rotate(a=90,v=(0,0,1))(screw)
		screw += rotate(a=180,v=(0,0,1))(screw)
		screw += rotate(a=270,v=(0,0,1))(screw)
		return screw

	def bump(self) -> OpenSCADObject:
		bump = cylinder(r = self.bump_dia/2,h=6,segments = 32,center=True)
		slot = cube([self.bump_dia,self.bump_dia,6],center=True)
		slot = translate([self.bump_dia/2,0,0])(slot)
		bump += slot
		bump = translate([0,0,self.motor_thickness/2])(bump)
		return bump

	def shaft(self) -> OpenSCADObject:
		shaft = cylinder(r = 3,h=20,segments=32,center=True)
		slot = cube([self.total_size/2,6,20],center=True)
		slot = translate([self.total_size/4,0,-4])(slot)
		shaft += slot
		shaft = translate([0,0,self.motor_thickness])(shaft)
		return shaft

	def motor_cutout(self) -> OpenSCADObject:
		mc = cube([self.stepper_size,self.stepper_size,self.motor_thickness], center=True)
		mc += self.screws()
		mc += self.bump()
		mc += self.shaft()
		return mc

	def motor_mount(self) -> OpenSCADObject:
		mm = cube([self.total_size,self.total_size,self.total_thick], center=True)
		mm -= self.motor_cutout()
		return mm

	def bisect_floor(self,input) -> OpenSCADObject:
		size = 300
		floor = translate([0,0,-150])(cube([300,300,300],center = True))
		return input - floor


if __name__ == "__main__":
	out_dir = sys.argv[1] if len(sys.argv) > 1 else Path(__file__).parent

	e = ef.Fittings(35)
	m = mount()	
	a = m.motor_mount()
	t = e.tube()
	t = rotate(a = 90,v = (0,1,0))(t)
	t = translate([-39,0,-18])(t)
	a += t
	a = rotate(a = 25, v = (0,1,0))(a)
	a = translate([0,0,-4])(a)
	a = m.bisect_floor(a)

	file_out = scad_render_to_file(a,  out_dir=out_dir, include_orig_code=True)
	print(f"{__file__}: SCAD file written to: \n{file_out}")
 
 
************************************************/
